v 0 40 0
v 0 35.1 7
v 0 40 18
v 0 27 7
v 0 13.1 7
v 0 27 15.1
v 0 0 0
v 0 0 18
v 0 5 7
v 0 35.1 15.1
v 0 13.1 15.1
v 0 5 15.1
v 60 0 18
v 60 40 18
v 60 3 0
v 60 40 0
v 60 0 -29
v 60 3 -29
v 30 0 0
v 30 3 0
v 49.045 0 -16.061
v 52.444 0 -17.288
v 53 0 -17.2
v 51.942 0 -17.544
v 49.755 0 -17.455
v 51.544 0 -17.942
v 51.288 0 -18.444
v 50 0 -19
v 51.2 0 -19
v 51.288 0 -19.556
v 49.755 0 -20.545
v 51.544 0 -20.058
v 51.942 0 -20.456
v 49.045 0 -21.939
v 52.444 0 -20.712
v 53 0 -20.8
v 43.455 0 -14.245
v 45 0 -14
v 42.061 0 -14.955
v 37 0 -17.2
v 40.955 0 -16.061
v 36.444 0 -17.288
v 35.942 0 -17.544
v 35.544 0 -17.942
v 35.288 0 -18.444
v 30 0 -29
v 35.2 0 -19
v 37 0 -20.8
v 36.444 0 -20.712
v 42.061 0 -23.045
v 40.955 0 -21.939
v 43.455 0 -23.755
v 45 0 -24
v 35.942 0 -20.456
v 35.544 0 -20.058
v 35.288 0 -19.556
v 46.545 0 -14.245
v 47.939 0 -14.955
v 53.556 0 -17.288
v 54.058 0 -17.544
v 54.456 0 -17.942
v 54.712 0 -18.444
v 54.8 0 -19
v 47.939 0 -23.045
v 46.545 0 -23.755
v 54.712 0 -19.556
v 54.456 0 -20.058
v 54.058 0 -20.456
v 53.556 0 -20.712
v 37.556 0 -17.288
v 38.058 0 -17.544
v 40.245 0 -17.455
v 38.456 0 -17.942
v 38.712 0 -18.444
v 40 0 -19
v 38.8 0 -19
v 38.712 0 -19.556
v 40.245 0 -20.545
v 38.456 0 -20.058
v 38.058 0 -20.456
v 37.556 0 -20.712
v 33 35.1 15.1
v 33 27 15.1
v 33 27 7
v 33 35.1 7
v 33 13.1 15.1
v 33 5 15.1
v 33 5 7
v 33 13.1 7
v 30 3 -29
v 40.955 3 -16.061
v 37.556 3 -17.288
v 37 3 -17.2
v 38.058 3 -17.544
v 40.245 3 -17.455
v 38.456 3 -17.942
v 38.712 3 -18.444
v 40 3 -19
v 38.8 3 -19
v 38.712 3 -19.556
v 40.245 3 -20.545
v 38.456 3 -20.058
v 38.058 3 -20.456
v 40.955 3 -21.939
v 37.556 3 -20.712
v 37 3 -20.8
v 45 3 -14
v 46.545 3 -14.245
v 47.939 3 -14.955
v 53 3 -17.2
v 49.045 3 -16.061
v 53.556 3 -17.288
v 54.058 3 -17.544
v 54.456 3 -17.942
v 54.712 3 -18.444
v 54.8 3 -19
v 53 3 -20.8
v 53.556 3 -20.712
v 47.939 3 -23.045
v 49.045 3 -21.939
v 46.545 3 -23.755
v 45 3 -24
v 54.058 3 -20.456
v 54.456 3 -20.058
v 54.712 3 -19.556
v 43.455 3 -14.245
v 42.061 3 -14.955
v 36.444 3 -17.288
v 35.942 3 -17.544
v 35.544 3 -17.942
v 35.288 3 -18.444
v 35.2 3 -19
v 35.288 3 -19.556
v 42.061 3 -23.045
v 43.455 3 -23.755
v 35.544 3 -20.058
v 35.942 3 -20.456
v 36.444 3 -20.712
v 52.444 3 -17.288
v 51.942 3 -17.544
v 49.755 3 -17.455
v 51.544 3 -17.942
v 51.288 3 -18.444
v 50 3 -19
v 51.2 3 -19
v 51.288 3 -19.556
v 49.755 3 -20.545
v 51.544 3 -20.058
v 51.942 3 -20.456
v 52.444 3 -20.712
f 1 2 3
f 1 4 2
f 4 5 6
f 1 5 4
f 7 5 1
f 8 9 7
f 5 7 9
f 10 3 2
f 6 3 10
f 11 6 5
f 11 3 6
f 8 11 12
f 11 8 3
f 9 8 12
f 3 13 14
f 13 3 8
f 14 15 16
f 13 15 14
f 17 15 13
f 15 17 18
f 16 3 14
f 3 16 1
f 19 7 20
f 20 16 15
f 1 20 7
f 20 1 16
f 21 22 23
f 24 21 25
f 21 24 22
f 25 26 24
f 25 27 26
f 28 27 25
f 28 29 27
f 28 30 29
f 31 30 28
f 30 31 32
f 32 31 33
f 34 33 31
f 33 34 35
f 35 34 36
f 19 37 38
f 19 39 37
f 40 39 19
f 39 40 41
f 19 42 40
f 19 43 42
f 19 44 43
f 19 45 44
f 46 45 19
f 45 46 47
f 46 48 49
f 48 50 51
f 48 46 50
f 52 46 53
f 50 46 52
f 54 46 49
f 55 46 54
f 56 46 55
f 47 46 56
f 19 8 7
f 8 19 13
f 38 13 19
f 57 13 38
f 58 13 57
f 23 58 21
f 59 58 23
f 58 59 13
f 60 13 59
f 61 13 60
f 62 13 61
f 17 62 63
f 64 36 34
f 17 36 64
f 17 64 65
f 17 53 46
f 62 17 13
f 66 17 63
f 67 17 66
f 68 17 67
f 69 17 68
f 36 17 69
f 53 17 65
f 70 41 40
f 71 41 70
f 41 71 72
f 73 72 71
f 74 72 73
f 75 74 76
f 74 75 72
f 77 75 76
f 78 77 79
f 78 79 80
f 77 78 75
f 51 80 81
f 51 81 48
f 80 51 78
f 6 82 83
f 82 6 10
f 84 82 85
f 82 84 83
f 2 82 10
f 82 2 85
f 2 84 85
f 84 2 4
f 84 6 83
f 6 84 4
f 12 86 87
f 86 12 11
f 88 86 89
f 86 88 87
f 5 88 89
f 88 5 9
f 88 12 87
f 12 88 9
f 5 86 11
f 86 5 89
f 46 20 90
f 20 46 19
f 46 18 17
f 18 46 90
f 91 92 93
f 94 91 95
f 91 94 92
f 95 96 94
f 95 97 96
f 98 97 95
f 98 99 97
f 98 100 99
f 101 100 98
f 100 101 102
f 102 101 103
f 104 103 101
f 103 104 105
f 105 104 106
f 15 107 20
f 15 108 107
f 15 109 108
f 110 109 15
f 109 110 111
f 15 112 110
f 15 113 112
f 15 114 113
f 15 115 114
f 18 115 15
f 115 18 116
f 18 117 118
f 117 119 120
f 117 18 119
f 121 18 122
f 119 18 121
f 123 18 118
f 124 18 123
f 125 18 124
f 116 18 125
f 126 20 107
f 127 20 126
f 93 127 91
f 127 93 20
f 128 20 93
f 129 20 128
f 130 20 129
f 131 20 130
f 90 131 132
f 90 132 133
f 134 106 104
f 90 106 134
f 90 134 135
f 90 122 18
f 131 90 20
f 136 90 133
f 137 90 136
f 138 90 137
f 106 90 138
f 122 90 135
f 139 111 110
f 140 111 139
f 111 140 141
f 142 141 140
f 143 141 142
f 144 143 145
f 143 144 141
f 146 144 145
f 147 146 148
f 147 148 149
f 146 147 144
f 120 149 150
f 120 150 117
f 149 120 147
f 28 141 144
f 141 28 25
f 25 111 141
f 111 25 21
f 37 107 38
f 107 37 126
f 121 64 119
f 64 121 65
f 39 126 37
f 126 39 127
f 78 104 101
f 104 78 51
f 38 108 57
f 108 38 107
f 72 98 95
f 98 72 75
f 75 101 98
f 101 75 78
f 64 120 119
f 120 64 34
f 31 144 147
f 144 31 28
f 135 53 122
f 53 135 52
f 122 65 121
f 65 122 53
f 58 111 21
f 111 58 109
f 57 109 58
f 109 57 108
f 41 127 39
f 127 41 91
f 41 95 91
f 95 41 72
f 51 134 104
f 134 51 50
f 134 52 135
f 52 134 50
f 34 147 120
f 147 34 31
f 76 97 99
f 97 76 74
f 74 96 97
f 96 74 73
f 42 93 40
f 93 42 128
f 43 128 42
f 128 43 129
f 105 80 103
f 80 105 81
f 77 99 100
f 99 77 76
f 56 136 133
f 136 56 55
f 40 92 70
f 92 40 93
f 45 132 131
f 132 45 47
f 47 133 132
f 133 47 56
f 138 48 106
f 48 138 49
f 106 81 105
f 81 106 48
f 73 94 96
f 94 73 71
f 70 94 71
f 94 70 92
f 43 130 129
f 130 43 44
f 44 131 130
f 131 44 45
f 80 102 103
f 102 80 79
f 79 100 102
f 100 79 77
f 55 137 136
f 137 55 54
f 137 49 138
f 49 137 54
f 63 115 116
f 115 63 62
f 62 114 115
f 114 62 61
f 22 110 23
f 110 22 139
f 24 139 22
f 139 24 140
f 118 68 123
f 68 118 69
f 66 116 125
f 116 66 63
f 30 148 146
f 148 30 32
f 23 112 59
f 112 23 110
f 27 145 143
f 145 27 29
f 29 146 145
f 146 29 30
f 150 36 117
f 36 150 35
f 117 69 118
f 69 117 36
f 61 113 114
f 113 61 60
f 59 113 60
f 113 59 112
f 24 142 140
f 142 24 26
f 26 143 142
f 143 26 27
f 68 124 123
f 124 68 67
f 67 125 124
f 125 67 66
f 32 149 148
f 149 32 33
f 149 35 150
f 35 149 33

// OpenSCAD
difference(){
    cube([60,40,18]);
    /*
    translate([30,-1,2]){
        cube([26.5,35,3.3]);
    }
    */
    translate([-2,27,7])
    cube([35,8.1,8.1]);
    
    translate([-2,5,7])
    cube([35,8.1,8.1]);
    
}


translate([30, 0,-29]){
    difference(){
        cube([30,3,30]);

        translate([15,5,10]){
            rotate([90,0,0]){
                cylinder(10,5,5, $fn=20);
            }
        }
        
        translate([7,5,10]){
            rotate([90,0,0]){
                cylinder(10,1.8,1.8, $fn=20);
            }
        }

        translate([23,5,10]){
            rotate([90,0,0]){
                cylinder(10,1.8,1.8, $fn=20);
            }
        }


    }
}
